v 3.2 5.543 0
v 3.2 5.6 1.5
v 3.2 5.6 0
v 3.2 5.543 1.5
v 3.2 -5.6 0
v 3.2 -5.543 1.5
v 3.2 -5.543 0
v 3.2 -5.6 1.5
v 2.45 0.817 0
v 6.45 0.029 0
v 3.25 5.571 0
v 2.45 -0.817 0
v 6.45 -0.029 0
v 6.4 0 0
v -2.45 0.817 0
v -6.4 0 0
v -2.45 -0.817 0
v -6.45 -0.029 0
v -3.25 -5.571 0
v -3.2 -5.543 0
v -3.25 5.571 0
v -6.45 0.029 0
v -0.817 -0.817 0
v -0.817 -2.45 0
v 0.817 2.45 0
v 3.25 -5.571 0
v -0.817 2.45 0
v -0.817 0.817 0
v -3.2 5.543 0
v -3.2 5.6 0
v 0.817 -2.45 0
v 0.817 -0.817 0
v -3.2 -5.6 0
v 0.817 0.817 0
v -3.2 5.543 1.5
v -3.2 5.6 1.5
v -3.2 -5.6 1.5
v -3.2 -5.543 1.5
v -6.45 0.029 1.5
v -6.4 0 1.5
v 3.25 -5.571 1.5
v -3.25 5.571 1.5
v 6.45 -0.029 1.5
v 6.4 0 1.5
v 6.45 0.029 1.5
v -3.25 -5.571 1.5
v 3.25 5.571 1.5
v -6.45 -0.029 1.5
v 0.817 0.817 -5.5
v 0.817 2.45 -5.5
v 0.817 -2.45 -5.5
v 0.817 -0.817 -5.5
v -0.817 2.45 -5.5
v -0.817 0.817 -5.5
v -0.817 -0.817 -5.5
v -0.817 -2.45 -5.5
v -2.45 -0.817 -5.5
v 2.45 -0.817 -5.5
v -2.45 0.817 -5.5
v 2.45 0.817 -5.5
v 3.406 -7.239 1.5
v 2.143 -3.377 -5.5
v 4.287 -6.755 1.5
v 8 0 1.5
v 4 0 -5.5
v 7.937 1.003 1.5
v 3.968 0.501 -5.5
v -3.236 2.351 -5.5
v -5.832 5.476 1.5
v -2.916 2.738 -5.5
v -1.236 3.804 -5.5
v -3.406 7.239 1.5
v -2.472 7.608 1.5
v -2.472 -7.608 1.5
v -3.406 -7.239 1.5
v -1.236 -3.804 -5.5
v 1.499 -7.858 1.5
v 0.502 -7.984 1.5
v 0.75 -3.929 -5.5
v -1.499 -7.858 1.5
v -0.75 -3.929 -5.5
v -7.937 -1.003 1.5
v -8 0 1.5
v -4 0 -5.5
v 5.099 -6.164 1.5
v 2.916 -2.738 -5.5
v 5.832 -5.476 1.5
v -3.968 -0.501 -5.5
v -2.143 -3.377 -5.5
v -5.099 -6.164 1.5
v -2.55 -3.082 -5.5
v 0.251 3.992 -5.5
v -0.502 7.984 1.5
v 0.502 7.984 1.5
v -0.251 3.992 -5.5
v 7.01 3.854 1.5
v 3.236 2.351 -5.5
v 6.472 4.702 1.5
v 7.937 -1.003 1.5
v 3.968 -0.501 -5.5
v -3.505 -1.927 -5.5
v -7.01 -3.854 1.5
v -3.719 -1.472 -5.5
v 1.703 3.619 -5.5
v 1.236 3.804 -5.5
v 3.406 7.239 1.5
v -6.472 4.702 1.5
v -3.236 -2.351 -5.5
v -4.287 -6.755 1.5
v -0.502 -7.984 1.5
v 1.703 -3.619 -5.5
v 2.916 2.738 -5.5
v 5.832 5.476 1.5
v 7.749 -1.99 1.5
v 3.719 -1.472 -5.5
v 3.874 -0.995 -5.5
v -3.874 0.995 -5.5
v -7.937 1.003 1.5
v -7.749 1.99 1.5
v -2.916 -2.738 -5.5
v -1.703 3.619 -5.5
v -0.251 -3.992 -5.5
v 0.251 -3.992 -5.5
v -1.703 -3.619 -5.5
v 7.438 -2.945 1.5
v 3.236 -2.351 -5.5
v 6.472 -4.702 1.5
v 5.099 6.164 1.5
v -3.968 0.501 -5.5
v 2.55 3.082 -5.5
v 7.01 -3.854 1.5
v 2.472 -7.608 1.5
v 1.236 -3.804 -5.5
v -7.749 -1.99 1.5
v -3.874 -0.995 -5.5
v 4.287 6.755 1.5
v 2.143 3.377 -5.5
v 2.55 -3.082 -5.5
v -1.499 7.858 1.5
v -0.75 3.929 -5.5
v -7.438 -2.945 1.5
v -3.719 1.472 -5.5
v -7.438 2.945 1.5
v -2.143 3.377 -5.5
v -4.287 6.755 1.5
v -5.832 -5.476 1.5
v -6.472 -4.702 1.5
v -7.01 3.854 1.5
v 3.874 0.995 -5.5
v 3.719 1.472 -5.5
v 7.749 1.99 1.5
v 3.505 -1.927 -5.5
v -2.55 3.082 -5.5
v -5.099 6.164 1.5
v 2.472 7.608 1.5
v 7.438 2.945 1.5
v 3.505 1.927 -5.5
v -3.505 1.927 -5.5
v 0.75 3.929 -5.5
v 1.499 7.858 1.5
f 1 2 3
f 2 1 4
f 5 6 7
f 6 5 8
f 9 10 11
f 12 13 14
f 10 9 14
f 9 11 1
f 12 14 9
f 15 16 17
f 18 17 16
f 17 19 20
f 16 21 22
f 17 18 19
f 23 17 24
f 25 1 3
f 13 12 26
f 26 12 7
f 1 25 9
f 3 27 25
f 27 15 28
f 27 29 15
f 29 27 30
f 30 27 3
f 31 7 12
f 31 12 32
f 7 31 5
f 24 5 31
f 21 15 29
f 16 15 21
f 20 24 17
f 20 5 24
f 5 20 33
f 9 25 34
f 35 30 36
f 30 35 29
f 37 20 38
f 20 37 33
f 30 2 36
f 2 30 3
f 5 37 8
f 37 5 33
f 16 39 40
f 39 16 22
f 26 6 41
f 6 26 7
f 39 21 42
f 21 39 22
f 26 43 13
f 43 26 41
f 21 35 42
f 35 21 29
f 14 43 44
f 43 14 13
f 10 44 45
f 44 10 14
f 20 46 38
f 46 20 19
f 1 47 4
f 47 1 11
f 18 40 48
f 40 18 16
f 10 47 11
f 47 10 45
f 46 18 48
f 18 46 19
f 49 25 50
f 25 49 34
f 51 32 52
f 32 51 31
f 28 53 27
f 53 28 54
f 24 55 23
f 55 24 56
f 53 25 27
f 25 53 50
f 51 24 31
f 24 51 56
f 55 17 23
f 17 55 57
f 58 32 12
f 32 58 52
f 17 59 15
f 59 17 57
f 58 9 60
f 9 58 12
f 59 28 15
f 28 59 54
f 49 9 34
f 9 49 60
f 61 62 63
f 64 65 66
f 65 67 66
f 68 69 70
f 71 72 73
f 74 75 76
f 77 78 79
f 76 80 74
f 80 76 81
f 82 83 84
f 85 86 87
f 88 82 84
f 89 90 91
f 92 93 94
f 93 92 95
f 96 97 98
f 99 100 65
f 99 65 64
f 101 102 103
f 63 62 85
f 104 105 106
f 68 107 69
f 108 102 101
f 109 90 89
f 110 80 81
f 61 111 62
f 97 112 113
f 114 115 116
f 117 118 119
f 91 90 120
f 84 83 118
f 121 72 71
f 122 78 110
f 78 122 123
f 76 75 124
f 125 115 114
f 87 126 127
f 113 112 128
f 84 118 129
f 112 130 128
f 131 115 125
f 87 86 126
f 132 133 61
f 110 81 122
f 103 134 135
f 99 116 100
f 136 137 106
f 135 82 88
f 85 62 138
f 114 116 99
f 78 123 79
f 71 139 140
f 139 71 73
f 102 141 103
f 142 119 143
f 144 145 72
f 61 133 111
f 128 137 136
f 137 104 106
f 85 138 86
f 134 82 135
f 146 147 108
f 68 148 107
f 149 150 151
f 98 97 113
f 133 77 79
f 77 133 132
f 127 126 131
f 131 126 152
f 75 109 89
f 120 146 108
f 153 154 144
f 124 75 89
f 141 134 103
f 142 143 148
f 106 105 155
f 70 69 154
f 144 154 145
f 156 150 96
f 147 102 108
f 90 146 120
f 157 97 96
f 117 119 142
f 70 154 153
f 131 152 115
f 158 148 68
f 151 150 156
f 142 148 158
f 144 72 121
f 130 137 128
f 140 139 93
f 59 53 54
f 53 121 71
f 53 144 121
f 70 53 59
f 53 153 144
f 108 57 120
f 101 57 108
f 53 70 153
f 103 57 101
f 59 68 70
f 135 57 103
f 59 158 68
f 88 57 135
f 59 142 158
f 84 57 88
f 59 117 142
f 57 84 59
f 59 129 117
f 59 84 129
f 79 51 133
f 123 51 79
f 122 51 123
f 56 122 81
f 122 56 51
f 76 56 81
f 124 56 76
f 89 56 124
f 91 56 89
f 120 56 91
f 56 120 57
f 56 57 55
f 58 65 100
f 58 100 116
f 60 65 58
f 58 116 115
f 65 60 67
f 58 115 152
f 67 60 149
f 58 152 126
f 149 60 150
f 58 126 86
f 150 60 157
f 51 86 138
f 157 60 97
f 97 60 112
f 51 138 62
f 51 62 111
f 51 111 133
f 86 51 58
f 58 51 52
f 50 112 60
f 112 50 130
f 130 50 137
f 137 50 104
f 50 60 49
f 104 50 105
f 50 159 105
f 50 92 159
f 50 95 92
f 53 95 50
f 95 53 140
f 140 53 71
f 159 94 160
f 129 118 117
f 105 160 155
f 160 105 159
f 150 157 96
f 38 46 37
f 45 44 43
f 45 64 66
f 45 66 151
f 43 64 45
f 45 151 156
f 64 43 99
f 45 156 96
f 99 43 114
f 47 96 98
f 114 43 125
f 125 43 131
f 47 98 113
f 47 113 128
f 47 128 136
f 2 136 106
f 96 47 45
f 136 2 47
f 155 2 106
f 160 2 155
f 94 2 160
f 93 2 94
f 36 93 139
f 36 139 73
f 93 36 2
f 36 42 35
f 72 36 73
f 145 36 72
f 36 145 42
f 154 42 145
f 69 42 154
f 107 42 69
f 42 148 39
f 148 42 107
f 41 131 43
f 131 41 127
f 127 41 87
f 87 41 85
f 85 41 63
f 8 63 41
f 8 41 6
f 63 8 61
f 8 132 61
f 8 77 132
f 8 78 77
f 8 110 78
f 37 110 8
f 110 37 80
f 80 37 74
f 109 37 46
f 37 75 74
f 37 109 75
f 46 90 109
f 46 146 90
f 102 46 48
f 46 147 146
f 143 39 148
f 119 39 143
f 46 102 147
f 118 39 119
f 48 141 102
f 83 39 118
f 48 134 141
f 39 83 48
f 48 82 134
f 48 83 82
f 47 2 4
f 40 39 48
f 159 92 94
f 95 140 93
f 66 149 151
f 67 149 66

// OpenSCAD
$fn=50;

difference(){
    union(){
        //cylinder(3,d=16,center=true);
        translate([0,0,-2])cylinder(7,4,8,center=true);
    }
    
    union(){
        translate([0,0,-0])nut(6,3,0.1);
        translate([0,0,-5])lego_axle(22);
    }
}

module nut(size, height, toleranz){
    factor = size/4;
    scale([factor+toleranz,factor+toleranz,1])union(){
        color("blue") translate([-2,-3.5,0])cube([4,7,height]);
        color("blue") rotate([0,0,180/3])translate([-2,-3.5,0])cube([4,7,height]);
        color("blue") rotate([0,0,-180/3])translate([-2,-3.5,0])cube([4,7,height]);
    }
}

module lego_axle(length){    
    axle_dia = 4.9; // prumer axle. Mozna ale 4.75
    axle_rib = axle_dia/3;  // "zebro", tj. tloustka steny axle 
    //axle_len = 15.6/2;    // delka axle s delkou 1 Lego unit = orig. lego rozmery
    axle_len = length;           // pro ladeni rozmeru to budeme tisknout nizsi
    cube([axle_rib, axle_dia, axle_len], true);
    rotate(90) cube([axle_rib, axle_dia, axle_len], true);
}
    
    
